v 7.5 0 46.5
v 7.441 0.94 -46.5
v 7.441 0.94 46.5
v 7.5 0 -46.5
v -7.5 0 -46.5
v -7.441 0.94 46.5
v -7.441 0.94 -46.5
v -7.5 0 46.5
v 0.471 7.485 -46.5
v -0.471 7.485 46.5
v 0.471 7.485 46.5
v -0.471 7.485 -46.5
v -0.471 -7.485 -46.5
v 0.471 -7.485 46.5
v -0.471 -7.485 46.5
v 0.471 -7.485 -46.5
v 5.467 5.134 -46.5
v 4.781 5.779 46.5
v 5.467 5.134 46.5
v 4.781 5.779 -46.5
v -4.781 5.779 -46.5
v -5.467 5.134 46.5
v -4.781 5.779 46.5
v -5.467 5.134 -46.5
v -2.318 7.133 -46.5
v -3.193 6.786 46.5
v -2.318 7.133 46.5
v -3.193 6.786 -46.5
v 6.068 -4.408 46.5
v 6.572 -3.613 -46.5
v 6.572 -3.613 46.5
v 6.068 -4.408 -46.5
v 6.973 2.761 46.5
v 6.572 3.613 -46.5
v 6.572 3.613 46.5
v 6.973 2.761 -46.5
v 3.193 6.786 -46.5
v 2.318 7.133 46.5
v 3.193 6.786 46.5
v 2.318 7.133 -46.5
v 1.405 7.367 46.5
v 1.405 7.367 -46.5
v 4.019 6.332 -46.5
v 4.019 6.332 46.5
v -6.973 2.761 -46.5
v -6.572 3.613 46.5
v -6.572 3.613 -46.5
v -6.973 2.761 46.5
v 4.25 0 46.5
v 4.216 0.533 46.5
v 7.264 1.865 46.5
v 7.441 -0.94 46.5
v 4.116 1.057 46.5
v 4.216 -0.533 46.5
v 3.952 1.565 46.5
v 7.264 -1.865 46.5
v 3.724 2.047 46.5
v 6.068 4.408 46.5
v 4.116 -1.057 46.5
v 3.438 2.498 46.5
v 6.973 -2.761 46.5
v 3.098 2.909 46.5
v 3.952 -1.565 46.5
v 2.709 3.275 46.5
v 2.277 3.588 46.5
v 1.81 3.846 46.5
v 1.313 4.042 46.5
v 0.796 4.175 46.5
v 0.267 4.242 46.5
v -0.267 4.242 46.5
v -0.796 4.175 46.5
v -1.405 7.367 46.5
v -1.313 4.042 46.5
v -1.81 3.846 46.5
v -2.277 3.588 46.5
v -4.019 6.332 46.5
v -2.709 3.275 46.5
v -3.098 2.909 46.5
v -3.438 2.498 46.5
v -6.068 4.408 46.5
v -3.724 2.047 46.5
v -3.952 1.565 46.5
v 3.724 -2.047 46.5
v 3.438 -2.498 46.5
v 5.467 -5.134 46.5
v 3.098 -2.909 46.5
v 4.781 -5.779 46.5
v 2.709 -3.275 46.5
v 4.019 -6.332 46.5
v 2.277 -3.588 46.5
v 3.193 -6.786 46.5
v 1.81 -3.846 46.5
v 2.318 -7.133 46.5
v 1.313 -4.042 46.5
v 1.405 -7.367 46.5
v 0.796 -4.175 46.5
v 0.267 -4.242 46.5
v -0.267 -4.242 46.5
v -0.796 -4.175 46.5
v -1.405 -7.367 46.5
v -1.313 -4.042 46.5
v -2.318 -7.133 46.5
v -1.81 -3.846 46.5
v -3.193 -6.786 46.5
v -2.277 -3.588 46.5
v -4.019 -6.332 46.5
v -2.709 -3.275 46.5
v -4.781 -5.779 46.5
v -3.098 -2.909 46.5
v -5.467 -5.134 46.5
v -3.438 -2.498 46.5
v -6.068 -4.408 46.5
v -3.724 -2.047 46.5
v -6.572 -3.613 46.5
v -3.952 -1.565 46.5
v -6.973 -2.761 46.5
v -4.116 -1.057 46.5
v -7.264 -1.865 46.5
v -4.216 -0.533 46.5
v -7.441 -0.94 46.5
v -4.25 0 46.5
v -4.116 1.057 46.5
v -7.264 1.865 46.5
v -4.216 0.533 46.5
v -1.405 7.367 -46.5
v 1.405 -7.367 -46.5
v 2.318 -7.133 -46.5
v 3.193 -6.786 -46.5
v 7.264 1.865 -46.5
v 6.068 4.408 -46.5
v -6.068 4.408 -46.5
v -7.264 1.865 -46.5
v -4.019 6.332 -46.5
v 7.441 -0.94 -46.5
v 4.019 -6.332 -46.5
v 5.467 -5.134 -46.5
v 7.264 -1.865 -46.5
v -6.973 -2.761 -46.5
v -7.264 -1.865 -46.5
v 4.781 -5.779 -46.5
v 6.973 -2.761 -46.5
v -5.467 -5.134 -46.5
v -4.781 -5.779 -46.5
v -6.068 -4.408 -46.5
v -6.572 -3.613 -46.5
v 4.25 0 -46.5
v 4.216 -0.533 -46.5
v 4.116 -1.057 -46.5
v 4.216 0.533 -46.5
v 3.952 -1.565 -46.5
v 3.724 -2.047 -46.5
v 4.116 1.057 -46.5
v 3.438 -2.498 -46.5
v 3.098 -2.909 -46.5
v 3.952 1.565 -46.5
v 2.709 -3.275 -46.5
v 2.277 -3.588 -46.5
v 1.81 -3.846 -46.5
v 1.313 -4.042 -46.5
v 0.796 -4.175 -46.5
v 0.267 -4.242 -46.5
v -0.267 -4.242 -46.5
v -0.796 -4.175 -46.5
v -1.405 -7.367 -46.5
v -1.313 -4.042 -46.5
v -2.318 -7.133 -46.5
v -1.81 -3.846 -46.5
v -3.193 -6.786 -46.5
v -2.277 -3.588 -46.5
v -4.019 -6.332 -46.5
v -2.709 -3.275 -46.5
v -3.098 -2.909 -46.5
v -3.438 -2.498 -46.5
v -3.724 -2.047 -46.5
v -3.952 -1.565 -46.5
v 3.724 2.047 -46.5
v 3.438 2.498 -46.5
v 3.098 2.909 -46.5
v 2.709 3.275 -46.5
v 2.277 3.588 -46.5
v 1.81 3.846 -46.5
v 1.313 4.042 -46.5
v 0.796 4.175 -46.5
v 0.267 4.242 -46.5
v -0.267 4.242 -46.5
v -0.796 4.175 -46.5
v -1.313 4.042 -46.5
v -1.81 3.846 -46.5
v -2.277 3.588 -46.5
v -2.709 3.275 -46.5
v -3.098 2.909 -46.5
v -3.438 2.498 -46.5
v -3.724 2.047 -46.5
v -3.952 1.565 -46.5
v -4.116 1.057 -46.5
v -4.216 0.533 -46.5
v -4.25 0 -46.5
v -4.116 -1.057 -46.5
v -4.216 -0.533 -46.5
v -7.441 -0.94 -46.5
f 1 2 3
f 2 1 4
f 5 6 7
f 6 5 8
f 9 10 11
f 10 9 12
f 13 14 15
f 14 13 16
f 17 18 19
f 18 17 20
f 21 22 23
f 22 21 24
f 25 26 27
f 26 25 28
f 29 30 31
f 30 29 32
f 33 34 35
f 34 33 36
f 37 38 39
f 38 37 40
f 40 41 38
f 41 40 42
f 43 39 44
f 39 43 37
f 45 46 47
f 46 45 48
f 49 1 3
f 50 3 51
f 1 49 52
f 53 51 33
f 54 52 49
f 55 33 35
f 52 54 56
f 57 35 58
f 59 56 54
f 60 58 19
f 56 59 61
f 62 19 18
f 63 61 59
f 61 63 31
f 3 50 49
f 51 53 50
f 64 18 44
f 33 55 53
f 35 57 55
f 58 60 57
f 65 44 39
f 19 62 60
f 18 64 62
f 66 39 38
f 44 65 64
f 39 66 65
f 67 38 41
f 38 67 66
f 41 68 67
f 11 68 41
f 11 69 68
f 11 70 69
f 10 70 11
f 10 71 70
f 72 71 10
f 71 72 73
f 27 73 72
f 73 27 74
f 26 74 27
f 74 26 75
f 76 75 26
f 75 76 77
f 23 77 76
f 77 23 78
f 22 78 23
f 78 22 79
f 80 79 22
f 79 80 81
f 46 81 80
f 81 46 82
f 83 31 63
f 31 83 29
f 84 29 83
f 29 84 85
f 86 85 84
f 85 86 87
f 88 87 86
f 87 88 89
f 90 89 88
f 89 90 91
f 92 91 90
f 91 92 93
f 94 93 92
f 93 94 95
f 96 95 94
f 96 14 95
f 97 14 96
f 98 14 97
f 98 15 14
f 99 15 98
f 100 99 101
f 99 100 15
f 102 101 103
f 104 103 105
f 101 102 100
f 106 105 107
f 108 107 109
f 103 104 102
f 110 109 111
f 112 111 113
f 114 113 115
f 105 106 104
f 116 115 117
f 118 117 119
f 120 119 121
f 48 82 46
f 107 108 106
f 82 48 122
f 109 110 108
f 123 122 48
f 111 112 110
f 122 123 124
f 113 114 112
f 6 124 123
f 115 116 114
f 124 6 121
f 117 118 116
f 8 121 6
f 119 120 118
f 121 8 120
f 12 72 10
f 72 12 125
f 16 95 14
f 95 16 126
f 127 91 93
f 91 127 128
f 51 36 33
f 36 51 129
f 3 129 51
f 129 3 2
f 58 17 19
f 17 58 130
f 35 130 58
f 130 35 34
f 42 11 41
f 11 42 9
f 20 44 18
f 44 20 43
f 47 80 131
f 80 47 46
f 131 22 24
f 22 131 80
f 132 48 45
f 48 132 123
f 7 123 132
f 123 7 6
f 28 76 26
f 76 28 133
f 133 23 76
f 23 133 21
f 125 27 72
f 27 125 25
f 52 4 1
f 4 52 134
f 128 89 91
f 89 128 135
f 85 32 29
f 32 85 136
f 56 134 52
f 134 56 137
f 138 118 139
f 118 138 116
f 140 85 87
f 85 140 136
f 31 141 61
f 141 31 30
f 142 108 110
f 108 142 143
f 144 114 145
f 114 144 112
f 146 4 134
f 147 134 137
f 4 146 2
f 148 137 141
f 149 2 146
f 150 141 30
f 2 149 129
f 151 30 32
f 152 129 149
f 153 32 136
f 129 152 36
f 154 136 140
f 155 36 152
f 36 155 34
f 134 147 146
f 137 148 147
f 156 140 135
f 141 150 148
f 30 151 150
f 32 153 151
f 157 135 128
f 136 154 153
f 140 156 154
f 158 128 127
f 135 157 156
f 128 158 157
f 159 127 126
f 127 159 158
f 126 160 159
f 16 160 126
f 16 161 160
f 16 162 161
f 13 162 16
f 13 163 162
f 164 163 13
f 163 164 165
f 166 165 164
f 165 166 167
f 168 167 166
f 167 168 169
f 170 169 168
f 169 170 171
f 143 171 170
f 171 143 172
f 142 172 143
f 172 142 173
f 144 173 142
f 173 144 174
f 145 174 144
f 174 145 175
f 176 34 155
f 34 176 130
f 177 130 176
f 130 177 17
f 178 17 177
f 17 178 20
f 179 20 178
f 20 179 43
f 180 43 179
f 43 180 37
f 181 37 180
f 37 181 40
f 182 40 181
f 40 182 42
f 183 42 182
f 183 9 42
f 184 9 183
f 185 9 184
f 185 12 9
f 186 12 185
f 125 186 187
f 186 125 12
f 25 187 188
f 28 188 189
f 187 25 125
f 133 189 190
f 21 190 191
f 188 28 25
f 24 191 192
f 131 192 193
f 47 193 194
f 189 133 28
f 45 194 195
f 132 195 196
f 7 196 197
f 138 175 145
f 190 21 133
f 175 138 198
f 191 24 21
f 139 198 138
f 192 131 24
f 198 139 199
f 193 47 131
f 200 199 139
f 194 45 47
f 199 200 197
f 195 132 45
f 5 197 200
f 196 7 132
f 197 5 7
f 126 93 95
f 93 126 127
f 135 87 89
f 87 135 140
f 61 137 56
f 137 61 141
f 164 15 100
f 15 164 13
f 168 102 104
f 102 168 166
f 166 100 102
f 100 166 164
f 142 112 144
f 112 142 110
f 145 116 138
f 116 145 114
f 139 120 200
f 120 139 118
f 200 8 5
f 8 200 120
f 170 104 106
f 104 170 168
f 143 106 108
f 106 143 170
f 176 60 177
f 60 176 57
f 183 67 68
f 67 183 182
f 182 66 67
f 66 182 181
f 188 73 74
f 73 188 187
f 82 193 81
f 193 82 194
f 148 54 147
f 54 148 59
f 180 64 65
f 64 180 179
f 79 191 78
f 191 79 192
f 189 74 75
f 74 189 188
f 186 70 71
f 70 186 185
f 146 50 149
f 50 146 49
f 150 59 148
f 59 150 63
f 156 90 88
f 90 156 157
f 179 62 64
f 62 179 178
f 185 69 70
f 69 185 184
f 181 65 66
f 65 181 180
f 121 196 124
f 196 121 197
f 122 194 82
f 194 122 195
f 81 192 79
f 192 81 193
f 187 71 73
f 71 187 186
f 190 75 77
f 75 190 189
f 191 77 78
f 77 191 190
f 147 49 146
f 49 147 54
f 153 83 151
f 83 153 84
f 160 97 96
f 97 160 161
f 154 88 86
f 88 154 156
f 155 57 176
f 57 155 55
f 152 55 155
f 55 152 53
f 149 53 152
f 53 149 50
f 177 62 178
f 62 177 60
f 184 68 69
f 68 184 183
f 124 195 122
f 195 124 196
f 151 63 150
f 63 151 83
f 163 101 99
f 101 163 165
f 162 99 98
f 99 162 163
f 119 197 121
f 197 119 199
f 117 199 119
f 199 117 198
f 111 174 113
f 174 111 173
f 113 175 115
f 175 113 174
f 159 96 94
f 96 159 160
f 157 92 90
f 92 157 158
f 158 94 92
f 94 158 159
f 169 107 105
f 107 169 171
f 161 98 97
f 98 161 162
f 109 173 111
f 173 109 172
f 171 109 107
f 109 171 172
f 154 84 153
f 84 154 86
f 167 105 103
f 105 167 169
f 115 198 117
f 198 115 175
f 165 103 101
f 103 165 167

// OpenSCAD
$fn = 50;


difference() {
	union() {
		translate(v = [0, 0, -46.5000000000]) {
			cylinder(h = 93, r = 7.5000000000);
		}
	}
	union() {
		translate(v = [0, 0, -100.0000000000]) {
			cylinder(h = 200, r = 4.2500000000);
		}
	}
}
